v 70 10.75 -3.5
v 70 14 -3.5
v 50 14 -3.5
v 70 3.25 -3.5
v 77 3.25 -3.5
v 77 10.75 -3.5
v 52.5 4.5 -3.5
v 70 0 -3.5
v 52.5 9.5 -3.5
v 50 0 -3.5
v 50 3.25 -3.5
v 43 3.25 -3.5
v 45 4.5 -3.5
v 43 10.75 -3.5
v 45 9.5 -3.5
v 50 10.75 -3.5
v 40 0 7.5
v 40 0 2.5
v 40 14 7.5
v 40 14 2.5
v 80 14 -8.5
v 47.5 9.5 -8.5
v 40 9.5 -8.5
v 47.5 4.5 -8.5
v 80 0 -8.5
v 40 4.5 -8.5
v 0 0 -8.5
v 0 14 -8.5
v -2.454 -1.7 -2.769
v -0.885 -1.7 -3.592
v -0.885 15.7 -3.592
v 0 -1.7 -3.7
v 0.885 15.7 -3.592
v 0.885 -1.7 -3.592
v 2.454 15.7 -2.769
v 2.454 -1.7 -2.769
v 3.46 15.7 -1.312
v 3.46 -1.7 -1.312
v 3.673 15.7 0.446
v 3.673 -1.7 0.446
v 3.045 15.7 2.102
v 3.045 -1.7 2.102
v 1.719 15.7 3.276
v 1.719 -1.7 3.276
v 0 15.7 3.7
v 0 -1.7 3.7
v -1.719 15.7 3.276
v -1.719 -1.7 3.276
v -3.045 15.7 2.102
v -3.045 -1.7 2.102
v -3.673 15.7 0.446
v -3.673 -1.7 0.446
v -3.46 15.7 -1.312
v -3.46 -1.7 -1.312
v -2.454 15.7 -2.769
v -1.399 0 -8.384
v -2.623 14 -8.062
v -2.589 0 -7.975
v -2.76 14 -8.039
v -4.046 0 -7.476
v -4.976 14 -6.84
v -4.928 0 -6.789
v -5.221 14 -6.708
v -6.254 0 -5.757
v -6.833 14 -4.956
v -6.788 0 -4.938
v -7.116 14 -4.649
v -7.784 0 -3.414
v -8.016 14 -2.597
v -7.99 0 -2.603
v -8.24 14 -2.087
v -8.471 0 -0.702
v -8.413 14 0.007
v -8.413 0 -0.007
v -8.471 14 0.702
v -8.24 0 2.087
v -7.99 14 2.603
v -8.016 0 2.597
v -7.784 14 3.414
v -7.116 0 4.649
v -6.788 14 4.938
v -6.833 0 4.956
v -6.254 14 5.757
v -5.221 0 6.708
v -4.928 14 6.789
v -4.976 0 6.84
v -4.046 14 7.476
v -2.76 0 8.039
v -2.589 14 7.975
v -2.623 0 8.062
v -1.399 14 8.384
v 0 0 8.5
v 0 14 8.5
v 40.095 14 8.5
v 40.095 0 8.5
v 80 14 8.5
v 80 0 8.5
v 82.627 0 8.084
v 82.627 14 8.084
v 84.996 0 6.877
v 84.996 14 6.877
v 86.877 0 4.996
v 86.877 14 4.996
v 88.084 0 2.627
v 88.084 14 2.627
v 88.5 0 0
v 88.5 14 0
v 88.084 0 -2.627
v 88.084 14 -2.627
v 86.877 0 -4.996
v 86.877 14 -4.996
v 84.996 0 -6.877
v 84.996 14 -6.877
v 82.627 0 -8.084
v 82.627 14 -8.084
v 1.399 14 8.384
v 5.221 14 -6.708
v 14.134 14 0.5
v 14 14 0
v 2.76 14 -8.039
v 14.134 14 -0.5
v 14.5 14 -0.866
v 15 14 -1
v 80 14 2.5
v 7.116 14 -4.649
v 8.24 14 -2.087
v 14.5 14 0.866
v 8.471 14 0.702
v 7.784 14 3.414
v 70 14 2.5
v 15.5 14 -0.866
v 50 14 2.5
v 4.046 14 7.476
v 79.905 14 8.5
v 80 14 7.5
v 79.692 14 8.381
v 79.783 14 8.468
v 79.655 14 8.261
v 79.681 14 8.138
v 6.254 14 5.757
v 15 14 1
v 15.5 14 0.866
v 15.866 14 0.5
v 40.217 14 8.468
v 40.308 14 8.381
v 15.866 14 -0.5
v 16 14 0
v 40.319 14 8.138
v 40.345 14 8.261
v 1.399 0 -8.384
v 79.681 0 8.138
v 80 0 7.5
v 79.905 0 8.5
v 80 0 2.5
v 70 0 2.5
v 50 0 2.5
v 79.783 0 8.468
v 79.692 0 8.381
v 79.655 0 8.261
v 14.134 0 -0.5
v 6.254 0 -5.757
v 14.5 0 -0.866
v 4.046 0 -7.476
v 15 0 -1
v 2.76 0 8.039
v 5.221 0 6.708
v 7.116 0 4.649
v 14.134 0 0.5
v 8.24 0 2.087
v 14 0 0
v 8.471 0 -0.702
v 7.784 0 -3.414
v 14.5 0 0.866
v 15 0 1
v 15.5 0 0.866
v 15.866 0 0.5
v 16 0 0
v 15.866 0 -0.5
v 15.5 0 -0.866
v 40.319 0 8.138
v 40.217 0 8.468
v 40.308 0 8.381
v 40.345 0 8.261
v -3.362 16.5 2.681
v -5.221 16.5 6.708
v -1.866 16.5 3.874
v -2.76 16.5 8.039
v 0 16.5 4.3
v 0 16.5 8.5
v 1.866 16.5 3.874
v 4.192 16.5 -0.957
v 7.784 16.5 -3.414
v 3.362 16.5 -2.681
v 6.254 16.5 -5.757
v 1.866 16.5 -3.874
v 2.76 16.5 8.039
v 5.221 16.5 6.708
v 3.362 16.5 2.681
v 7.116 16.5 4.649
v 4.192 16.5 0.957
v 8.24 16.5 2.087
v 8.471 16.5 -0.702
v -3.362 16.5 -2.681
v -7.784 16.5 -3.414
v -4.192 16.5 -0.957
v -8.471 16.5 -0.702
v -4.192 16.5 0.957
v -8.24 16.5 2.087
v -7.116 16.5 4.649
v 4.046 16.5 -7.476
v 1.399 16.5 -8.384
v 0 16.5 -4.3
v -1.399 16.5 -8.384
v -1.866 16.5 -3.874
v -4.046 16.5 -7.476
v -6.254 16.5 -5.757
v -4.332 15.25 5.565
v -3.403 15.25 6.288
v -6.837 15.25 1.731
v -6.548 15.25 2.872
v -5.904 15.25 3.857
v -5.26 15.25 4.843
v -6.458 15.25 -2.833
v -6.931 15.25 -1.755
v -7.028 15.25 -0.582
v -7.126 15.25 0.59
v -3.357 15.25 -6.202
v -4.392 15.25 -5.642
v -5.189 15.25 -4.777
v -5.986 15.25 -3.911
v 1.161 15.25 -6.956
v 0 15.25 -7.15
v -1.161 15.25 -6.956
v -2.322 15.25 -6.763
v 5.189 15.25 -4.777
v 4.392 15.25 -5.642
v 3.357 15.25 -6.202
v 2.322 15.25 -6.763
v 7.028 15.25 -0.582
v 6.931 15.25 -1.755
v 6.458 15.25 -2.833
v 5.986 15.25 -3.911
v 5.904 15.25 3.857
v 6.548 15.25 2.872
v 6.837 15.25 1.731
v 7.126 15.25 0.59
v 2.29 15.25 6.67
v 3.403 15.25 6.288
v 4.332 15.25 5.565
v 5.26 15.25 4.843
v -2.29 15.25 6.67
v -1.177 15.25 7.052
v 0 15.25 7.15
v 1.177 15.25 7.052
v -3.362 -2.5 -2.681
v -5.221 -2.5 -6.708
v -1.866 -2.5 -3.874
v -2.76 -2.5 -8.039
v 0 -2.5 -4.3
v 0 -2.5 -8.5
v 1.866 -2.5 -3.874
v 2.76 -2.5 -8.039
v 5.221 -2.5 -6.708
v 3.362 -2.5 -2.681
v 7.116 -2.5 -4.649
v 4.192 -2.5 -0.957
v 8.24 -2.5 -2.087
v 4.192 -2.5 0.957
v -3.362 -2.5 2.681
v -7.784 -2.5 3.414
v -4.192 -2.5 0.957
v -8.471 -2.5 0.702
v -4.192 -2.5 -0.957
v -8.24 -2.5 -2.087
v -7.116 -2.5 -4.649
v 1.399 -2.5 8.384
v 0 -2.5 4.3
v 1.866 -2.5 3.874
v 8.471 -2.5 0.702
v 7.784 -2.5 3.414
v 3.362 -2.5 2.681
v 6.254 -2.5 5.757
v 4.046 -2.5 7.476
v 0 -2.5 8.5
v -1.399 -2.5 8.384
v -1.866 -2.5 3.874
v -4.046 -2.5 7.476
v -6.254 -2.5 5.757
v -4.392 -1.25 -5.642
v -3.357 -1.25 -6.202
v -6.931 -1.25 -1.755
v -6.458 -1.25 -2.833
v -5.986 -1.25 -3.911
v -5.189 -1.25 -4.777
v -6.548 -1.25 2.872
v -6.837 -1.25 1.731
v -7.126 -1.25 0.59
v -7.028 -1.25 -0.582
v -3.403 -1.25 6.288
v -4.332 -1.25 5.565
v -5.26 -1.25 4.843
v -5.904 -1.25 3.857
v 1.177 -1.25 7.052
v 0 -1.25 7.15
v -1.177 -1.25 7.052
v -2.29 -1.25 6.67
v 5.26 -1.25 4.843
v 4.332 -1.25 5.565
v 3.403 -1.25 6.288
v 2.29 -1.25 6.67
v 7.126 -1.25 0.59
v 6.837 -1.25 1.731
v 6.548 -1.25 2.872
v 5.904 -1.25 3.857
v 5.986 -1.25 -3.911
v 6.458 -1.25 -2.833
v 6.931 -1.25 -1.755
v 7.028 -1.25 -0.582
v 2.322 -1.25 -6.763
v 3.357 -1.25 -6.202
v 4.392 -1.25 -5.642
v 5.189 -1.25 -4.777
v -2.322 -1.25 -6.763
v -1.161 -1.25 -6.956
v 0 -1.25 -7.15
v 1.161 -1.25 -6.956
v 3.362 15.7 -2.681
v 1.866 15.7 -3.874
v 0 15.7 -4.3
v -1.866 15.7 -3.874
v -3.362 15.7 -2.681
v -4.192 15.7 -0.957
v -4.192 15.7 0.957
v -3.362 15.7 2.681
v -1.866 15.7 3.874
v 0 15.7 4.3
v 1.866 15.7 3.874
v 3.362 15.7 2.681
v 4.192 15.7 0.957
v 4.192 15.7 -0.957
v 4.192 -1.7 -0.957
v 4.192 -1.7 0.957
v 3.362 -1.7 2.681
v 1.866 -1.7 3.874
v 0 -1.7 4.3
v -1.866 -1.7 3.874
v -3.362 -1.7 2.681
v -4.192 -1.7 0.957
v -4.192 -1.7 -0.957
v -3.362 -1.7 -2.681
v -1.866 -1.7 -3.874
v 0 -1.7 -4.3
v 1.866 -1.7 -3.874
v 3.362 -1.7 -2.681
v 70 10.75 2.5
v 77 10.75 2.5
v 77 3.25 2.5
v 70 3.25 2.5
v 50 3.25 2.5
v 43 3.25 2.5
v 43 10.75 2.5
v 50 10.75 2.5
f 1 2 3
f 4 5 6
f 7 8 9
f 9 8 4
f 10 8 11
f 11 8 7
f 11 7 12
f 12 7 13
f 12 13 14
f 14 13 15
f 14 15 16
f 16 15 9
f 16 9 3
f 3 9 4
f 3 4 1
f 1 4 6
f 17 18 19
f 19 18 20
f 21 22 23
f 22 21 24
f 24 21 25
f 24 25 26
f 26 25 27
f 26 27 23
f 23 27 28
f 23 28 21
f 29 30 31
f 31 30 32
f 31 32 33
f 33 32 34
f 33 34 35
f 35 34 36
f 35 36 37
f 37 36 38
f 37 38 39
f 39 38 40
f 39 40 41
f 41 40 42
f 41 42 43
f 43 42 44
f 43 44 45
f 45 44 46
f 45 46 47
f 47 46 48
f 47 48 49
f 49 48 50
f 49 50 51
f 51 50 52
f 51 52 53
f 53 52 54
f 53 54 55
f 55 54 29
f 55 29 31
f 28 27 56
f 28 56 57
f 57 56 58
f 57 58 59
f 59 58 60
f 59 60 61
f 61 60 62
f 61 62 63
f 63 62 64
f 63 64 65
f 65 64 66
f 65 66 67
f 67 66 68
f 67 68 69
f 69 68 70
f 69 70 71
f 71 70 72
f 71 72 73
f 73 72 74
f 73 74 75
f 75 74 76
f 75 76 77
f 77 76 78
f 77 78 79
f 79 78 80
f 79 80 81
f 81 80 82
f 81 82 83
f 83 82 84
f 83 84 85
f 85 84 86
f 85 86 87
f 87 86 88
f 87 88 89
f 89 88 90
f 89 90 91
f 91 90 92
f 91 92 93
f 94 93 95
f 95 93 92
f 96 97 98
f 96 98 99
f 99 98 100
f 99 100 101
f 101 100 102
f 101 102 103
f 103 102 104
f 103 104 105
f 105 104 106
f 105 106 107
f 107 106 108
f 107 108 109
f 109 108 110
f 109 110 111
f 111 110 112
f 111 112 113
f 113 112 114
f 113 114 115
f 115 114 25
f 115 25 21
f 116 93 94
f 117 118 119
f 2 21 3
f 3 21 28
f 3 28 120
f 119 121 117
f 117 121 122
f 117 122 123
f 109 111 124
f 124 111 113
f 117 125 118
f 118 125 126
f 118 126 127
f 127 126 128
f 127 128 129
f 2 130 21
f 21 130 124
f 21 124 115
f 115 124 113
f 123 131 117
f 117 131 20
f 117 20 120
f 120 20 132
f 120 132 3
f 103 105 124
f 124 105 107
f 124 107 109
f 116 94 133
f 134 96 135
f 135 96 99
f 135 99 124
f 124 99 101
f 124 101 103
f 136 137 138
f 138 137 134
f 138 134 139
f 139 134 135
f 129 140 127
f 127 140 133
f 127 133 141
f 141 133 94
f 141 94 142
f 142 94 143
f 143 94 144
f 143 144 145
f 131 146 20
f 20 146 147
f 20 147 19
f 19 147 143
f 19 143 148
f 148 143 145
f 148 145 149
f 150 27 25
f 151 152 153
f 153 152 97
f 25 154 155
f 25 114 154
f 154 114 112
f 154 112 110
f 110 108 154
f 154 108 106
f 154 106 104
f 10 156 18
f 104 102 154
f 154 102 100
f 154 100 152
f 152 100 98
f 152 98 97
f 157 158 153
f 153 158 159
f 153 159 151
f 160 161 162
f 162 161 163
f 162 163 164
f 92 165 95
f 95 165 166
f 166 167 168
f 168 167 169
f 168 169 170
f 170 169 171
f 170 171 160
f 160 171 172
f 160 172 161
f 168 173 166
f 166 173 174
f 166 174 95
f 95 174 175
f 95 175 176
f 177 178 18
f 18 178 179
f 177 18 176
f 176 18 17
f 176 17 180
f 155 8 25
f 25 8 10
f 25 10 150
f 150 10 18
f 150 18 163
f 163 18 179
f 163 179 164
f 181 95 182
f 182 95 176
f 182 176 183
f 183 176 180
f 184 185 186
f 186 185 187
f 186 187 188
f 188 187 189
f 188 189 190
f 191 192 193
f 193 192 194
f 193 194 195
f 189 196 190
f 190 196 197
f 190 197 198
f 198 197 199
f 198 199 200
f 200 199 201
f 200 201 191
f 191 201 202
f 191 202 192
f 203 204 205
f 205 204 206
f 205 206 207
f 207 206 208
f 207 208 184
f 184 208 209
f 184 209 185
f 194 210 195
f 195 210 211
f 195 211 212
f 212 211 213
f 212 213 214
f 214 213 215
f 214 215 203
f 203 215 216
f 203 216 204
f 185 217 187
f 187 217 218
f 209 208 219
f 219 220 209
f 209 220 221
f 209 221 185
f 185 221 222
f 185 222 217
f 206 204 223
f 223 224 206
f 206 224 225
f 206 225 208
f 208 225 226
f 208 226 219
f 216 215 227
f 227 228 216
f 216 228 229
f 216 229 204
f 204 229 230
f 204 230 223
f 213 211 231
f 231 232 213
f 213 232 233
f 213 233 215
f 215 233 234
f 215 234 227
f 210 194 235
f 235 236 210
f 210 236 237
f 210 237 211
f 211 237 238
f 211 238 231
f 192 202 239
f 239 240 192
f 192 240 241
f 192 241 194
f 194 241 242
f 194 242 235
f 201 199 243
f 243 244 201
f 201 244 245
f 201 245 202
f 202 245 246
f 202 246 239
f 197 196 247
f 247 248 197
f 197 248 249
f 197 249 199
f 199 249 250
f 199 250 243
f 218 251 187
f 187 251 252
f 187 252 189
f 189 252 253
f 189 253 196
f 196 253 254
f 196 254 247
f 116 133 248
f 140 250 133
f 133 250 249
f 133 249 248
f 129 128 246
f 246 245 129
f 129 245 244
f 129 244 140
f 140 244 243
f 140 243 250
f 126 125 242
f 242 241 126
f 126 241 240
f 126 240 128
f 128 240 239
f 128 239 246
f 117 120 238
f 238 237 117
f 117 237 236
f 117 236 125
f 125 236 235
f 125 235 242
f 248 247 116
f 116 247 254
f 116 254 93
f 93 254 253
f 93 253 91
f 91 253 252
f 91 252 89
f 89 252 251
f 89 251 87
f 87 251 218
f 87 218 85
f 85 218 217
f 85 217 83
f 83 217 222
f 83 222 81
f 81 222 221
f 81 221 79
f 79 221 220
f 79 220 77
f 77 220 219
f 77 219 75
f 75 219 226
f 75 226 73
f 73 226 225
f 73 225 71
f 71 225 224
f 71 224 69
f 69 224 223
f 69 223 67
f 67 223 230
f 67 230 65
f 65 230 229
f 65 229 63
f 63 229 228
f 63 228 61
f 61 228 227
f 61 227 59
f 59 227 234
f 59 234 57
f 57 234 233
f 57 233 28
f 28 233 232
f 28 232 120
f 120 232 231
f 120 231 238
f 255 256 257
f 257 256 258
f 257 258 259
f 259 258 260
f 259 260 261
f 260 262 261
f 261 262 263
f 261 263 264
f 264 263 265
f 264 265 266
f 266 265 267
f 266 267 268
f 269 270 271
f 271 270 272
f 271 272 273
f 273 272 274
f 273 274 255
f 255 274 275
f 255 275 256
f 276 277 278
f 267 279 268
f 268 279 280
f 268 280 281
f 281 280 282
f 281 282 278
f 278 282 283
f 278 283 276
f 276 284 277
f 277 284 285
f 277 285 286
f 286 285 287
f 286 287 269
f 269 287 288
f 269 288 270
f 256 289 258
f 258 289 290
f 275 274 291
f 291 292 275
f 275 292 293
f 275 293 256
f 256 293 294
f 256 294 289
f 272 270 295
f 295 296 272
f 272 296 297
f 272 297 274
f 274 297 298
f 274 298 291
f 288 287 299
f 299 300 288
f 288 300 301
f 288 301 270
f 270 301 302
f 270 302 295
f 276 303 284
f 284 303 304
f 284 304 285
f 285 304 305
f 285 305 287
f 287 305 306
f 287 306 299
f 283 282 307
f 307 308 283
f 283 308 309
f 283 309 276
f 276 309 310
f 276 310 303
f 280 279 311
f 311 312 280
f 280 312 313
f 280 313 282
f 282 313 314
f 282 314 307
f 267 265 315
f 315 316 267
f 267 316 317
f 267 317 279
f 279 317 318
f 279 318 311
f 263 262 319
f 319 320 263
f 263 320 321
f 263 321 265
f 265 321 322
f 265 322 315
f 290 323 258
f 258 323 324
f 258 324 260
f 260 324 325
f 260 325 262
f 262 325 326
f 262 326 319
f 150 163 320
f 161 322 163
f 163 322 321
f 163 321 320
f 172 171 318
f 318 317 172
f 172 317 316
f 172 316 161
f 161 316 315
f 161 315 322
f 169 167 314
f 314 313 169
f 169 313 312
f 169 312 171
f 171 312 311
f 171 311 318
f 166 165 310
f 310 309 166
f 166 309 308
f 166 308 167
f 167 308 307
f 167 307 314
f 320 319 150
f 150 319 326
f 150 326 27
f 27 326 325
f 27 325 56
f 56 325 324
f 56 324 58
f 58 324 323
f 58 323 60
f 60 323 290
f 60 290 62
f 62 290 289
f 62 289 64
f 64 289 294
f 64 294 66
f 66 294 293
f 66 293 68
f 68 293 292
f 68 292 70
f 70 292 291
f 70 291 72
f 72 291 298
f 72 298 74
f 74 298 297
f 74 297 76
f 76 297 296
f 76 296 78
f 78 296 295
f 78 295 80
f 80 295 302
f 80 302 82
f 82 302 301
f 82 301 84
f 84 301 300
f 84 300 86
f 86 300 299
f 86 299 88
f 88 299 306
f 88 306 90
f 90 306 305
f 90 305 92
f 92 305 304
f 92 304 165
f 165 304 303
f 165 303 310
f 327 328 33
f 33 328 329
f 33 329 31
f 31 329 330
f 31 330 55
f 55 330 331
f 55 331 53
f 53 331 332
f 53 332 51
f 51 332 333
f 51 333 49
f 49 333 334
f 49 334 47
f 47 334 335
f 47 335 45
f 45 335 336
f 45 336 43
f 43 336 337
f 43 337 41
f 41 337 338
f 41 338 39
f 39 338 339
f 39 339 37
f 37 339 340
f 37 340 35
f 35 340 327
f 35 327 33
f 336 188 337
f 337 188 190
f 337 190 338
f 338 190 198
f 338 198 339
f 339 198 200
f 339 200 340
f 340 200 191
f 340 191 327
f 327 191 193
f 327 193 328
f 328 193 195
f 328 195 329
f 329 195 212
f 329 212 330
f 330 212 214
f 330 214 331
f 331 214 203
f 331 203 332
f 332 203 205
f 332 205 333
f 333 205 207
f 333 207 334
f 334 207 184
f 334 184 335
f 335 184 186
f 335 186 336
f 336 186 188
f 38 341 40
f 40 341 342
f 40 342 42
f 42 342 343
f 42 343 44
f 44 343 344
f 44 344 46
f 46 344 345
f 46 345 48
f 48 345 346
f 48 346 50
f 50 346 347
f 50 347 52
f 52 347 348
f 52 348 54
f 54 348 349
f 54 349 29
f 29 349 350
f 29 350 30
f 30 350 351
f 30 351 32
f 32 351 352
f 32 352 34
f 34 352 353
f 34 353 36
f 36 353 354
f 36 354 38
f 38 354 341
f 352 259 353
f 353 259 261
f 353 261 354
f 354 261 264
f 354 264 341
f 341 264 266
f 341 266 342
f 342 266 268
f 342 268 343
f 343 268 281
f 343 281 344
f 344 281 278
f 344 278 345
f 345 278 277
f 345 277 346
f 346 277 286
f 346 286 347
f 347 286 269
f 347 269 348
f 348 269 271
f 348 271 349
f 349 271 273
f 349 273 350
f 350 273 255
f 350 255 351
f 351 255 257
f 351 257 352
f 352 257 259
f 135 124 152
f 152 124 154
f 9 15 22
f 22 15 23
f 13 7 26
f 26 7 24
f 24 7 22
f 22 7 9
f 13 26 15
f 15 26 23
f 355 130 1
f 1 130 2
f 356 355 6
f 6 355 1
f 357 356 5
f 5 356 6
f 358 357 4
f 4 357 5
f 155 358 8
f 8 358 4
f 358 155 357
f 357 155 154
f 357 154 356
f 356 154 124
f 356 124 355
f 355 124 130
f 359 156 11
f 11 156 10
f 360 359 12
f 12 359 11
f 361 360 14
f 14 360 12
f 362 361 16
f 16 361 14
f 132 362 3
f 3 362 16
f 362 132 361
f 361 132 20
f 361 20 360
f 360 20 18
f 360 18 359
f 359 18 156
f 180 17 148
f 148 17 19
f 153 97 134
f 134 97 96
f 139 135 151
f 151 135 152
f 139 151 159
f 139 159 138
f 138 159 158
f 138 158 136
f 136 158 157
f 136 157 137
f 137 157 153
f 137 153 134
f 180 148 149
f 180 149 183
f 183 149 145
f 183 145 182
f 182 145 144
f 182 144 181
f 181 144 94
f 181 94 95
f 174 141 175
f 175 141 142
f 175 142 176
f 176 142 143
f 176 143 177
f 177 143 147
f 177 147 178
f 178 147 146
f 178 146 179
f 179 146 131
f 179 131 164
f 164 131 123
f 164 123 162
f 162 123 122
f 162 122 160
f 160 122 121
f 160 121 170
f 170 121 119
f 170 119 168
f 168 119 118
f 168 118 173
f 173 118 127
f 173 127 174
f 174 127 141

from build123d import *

# Parameters (mm, degrees)
EXTRUDE_1_DEPTH     = 14
SKETCH_3_R          = 3.7
CUT_EXTRUDE_1_DEPTH = 19
SKETCH_5_R          = 4.3
CUT_EXTRUDE_2_DEPTH = 0.8
SKETCH_6_R          = 4.3
CUT_EXTRUDE_3_DEPTH = 0.8
SKETCH_8_W          = 40
SKETCH_8_H          = 14
CUT_EXTRUDE_4_DEPTH = 12
SKETCH_9_W          = 2.5
SKETCH_9_H          = 5
CUT_EXTRUDE_5_DEPTH = 5
CUT_EXTRUDE_6_DEPTH = 5
EXTRUDE_3_DEPTH     = 6
EXTRUDE_5_DEPTH     = 14
FILLET_5_R          = 0.25
SKETCH_15_R         = 1
CUT_EXTRUDE_7_DEPTH = 14


with BuildPart() as part:
    # 스케치1 → 보스-돌출1 (new body)
    with BuildSketch(Plane(origin=(0, 0, 0), x_dir=(1, 0, 0), z_dir=(0, 1, 0))):
        with BuildLine():
            Line((0, 8.5), (80, 8.5))
            ThreePointArc((80, 8.5), (88.5, 0), (80, -8.5))
            Line((80, -8.5), (0, -8.5))
            ThreePointArc((0, -8.5), (-8.5, 0), (0, 8.5))
        make_face()
    extrude(amount=EXTRUDE_1_DEPTH)

    # 스케치2 → 회전1 (revolve)
    with BuildSketch(Plane(origin=(0, 0, 0), x_dir=(0, 0, -1), z_dir=(1, 0, 0))):
        Polygon((0, 14), (0, 16.5), (8.5, 16.5), (7.15, 15.25), (8.5, 14), align=None)
        Polygon((0, 0), (0, -2.5), (8.5, -2.5), (7.15, -1.25), (8.5, 0), align=None)
    revolve(axis=Axis((0, 14, 0), (0, -1, 0)))

    # 스케치3 → 컷-돌출1 (cut)
    with BuildSketch(Plane(origin=(0, 16.5, 0), x_dir=(1, 0, 0), z_dir=(0, 1, 0))):
        Circle(SKETCH_3_R)
    extrude(amount=-CUT_EXTRUDE_1_DEPTH, mode=Mode.SUBTRACT)

    # 스케치5 → 컷-돌출2 (cut)
    with BuildSketch(Plane(origin=(0, 16.5, 0), x_dir=(1, 0, 0), z_dir=(0, 1, 0))):
        Circle(SKETCH_5_R)
    extrude(amount=-CUT_EXTRUDE_2_DEPTH, mode=Mode.SUBTRACT)

    # 스케치6 → 컷-돌출3 (cut)
    with BuildSketch(Plane.XZ.offset(2.5)):
        Circle(SKETCH_6_R)
    extrude(amount=-CUT_EXTRUDE_3_DEPTH, mode=Mode.SUBTRACT)

    # 스케치8 → 컷-돌출4 (cut)
    with BuildSketch(Plane.XY.offset(8.5)):
        with Locations((60, 7)):
            Rectangle(SKETCH_8_W, SKETCH_8_H)
    extrude(amount=-CUT_EXTRUDE_4_DEPTH, mode=Mode.SUBTRACT)

    # 스케치9 → 컷-돌출5 (cut)
    with BuildSketch(Plane.XY.offset(-3.5)):
        with Locations((46.25, 7)):
            Rectangle(SKETCH_9_W, SKETCH_9_H)
    extrude(amount=-CUT_EXTRUDE_5_DEPTH, mode=Mode.SUBTRACT)

    # 스케치11 → 컷-돌출6 (cut)
    with BuildSketch(Plane(origin=(0, 4.5, 0), x_dir=(1, 0, 0), z_dir=(0, 1, 0))):
        Polygon((47.5, 3.5), (52.5, 3.5), (47.5, 8.5), (40, 8.5), (45, 3.5), align=None)
    extrude(amount=CUT_EXTRUDE_6_DEPTH, mode=Mode.SUBTRACT)

    # 스케치12 → 보스-돌출3 (add)
    with BuildSketch(Plane.XY.offset(-3.5)):
        Polygon((80, 14), (70, 14), (70, 10.75), (77, 10.75), (77, 3.25), (70, 3.25), (70, 0), (80, 0), align=None)
        Polygon((50, 14), (50, 10.75), (43, 10.75), (43, 3.25), (50, 3.25), (50, 0), (40, 0), (40, 14), align=None)
    extrude(amount=EXTRUDE_3_DEPTH)

    # 스케치14 → 보스-돌출5 (add)
    with BuildSketch(Plane.XZ):
        Polygon((40, 8.5), (40.5, 8.5), (40, 7.5), align=None)
        Polygon((80, 8.5), (79.5, 8.5), (80, 7.5), align=None)
    extrude(amount=-EXTRUDE_5_DEPTH)

    # 필렛5
    fillet_5_edges = [part.edges().sort_by_distance(p)[0] for p in [
        (40.5, 7, 8.5),
        (79.5, 7, 8.5),
    ]]
    fillet(fillet_5_edges, radius=FILLET_5_R)

    # 스케치15 → 컷-돌출7 (cut)
    with BuildSketch(Plane(origin=(0, 14, 0), x_dir=(1, 0, 0), z_dir=(0, 1, 0))):
        with Locations((15, 0)):
            Circle(SKETCH_15_R)
    extrude(amount=-CUT_EXTRUDE_7_DEPTH, mode=Mode.SUBTRACT)


solid = part.part
